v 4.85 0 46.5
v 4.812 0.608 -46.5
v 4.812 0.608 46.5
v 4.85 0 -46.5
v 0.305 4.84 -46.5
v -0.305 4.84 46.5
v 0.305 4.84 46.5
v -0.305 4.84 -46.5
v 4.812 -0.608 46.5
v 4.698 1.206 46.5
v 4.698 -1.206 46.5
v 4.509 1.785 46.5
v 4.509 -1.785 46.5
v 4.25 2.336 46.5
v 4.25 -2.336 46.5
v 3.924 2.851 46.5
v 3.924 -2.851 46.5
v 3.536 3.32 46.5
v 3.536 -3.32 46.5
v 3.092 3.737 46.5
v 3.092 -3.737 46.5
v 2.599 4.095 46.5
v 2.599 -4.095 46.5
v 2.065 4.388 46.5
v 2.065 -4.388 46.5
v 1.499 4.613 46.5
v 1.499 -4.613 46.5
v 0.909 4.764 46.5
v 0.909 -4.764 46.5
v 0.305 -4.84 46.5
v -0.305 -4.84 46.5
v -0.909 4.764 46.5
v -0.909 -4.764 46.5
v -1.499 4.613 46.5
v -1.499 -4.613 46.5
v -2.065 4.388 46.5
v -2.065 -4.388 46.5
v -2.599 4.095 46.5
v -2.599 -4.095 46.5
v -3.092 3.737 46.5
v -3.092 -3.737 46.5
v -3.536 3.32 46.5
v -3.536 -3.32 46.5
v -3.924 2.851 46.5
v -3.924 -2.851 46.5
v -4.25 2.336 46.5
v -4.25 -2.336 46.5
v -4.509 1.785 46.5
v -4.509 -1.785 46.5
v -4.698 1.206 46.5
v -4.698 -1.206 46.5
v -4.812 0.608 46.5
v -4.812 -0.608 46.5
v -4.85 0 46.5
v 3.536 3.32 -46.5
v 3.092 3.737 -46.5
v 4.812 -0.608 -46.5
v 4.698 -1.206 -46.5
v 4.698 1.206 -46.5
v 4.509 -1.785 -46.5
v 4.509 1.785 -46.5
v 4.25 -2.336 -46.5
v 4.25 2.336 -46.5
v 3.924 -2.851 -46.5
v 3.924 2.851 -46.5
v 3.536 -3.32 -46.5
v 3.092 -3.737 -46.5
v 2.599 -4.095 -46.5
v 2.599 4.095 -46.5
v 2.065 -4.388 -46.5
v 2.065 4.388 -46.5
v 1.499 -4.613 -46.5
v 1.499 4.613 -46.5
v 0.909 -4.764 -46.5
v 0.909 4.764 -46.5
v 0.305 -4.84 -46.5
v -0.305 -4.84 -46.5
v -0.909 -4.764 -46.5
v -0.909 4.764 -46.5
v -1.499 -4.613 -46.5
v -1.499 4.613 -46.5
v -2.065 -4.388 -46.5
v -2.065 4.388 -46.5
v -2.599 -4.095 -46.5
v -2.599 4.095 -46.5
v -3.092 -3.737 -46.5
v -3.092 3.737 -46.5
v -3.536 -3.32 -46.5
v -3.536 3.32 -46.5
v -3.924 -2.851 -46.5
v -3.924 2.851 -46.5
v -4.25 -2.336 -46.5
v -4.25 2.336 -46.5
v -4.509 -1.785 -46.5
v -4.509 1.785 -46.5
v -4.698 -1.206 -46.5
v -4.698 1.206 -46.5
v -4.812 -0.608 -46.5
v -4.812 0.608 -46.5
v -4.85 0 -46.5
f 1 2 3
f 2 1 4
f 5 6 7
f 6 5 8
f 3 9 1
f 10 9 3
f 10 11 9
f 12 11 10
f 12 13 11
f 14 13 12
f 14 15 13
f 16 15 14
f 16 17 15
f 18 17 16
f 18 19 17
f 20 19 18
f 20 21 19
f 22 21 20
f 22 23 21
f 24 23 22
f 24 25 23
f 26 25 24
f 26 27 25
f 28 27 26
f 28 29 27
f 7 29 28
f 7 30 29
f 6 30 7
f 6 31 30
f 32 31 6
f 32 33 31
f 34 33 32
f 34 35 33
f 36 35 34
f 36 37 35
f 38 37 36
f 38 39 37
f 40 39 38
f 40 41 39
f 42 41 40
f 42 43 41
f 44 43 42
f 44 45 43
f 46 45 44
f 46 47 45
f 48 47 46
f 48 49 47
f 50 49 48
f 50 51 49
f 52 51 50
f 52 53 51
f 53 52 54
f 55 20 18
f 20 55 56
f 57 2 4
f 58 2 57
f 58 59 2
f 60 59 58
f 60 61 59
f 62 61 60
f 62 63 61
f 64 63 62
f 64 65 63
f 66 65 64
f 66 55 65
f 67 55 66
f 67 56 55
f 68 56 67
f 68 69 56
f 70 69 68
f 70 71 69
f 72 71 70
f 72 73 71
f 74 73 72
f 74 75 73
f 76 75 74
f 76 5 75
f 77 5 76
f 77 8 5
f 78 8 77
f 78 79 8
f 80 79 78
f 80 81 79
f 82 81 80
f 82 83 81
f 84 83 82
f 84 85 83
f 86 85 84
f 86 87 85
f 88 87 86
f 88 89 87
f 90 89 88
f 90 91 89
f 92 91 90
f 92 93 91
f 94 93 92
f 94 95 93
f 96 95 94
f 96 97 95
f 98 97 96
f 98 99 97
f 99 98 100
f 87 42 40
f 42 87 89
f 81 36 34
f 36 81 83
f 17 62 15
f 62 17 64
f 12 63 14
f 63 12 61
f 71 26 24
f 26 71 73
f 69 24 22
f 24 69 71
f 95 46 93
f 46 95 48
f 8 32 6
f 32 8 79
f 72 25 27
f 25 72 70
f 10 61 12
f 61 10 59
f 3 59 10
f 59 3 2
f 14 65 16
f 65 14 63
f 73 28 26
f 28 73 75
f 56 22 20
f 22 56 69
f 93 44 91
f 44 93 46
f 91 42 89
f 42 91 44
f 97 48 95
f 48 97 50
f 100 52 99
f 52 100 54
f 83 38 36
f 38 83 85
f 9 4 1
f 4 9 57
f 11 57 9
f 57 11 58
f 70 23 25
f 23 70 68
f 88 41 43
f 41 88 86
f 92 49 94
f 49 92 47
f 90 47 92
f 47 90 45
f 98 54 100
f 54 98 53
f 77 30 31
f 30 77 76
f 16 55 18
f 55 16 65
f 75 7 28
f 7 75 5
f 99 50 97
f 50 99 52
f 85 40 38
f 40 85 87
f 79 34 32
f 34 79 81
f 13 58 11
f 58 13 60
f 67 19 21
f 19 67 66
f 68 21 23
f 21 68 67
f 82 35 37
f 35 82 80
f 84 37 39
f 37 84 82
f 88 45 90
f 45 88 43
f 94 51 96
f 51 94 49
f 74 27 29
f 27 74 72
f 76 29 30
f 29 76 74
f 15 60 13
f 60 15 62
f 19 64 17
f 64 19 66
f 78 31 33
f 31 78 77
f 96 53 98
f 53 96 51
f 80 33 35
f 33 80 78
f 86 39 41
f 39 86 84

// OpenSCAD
$fn = 50;


difference() {
	union() {
		translate(v = [0, 0, -46.5000000000]) {
			cylinder(h = 93, r = 4.8500000000);
		}
	}
	union() {
		translate(v = [0, 0, -100.0000000000]) {
			cylinder(h = 200, r = 0);
		}
	}
}
